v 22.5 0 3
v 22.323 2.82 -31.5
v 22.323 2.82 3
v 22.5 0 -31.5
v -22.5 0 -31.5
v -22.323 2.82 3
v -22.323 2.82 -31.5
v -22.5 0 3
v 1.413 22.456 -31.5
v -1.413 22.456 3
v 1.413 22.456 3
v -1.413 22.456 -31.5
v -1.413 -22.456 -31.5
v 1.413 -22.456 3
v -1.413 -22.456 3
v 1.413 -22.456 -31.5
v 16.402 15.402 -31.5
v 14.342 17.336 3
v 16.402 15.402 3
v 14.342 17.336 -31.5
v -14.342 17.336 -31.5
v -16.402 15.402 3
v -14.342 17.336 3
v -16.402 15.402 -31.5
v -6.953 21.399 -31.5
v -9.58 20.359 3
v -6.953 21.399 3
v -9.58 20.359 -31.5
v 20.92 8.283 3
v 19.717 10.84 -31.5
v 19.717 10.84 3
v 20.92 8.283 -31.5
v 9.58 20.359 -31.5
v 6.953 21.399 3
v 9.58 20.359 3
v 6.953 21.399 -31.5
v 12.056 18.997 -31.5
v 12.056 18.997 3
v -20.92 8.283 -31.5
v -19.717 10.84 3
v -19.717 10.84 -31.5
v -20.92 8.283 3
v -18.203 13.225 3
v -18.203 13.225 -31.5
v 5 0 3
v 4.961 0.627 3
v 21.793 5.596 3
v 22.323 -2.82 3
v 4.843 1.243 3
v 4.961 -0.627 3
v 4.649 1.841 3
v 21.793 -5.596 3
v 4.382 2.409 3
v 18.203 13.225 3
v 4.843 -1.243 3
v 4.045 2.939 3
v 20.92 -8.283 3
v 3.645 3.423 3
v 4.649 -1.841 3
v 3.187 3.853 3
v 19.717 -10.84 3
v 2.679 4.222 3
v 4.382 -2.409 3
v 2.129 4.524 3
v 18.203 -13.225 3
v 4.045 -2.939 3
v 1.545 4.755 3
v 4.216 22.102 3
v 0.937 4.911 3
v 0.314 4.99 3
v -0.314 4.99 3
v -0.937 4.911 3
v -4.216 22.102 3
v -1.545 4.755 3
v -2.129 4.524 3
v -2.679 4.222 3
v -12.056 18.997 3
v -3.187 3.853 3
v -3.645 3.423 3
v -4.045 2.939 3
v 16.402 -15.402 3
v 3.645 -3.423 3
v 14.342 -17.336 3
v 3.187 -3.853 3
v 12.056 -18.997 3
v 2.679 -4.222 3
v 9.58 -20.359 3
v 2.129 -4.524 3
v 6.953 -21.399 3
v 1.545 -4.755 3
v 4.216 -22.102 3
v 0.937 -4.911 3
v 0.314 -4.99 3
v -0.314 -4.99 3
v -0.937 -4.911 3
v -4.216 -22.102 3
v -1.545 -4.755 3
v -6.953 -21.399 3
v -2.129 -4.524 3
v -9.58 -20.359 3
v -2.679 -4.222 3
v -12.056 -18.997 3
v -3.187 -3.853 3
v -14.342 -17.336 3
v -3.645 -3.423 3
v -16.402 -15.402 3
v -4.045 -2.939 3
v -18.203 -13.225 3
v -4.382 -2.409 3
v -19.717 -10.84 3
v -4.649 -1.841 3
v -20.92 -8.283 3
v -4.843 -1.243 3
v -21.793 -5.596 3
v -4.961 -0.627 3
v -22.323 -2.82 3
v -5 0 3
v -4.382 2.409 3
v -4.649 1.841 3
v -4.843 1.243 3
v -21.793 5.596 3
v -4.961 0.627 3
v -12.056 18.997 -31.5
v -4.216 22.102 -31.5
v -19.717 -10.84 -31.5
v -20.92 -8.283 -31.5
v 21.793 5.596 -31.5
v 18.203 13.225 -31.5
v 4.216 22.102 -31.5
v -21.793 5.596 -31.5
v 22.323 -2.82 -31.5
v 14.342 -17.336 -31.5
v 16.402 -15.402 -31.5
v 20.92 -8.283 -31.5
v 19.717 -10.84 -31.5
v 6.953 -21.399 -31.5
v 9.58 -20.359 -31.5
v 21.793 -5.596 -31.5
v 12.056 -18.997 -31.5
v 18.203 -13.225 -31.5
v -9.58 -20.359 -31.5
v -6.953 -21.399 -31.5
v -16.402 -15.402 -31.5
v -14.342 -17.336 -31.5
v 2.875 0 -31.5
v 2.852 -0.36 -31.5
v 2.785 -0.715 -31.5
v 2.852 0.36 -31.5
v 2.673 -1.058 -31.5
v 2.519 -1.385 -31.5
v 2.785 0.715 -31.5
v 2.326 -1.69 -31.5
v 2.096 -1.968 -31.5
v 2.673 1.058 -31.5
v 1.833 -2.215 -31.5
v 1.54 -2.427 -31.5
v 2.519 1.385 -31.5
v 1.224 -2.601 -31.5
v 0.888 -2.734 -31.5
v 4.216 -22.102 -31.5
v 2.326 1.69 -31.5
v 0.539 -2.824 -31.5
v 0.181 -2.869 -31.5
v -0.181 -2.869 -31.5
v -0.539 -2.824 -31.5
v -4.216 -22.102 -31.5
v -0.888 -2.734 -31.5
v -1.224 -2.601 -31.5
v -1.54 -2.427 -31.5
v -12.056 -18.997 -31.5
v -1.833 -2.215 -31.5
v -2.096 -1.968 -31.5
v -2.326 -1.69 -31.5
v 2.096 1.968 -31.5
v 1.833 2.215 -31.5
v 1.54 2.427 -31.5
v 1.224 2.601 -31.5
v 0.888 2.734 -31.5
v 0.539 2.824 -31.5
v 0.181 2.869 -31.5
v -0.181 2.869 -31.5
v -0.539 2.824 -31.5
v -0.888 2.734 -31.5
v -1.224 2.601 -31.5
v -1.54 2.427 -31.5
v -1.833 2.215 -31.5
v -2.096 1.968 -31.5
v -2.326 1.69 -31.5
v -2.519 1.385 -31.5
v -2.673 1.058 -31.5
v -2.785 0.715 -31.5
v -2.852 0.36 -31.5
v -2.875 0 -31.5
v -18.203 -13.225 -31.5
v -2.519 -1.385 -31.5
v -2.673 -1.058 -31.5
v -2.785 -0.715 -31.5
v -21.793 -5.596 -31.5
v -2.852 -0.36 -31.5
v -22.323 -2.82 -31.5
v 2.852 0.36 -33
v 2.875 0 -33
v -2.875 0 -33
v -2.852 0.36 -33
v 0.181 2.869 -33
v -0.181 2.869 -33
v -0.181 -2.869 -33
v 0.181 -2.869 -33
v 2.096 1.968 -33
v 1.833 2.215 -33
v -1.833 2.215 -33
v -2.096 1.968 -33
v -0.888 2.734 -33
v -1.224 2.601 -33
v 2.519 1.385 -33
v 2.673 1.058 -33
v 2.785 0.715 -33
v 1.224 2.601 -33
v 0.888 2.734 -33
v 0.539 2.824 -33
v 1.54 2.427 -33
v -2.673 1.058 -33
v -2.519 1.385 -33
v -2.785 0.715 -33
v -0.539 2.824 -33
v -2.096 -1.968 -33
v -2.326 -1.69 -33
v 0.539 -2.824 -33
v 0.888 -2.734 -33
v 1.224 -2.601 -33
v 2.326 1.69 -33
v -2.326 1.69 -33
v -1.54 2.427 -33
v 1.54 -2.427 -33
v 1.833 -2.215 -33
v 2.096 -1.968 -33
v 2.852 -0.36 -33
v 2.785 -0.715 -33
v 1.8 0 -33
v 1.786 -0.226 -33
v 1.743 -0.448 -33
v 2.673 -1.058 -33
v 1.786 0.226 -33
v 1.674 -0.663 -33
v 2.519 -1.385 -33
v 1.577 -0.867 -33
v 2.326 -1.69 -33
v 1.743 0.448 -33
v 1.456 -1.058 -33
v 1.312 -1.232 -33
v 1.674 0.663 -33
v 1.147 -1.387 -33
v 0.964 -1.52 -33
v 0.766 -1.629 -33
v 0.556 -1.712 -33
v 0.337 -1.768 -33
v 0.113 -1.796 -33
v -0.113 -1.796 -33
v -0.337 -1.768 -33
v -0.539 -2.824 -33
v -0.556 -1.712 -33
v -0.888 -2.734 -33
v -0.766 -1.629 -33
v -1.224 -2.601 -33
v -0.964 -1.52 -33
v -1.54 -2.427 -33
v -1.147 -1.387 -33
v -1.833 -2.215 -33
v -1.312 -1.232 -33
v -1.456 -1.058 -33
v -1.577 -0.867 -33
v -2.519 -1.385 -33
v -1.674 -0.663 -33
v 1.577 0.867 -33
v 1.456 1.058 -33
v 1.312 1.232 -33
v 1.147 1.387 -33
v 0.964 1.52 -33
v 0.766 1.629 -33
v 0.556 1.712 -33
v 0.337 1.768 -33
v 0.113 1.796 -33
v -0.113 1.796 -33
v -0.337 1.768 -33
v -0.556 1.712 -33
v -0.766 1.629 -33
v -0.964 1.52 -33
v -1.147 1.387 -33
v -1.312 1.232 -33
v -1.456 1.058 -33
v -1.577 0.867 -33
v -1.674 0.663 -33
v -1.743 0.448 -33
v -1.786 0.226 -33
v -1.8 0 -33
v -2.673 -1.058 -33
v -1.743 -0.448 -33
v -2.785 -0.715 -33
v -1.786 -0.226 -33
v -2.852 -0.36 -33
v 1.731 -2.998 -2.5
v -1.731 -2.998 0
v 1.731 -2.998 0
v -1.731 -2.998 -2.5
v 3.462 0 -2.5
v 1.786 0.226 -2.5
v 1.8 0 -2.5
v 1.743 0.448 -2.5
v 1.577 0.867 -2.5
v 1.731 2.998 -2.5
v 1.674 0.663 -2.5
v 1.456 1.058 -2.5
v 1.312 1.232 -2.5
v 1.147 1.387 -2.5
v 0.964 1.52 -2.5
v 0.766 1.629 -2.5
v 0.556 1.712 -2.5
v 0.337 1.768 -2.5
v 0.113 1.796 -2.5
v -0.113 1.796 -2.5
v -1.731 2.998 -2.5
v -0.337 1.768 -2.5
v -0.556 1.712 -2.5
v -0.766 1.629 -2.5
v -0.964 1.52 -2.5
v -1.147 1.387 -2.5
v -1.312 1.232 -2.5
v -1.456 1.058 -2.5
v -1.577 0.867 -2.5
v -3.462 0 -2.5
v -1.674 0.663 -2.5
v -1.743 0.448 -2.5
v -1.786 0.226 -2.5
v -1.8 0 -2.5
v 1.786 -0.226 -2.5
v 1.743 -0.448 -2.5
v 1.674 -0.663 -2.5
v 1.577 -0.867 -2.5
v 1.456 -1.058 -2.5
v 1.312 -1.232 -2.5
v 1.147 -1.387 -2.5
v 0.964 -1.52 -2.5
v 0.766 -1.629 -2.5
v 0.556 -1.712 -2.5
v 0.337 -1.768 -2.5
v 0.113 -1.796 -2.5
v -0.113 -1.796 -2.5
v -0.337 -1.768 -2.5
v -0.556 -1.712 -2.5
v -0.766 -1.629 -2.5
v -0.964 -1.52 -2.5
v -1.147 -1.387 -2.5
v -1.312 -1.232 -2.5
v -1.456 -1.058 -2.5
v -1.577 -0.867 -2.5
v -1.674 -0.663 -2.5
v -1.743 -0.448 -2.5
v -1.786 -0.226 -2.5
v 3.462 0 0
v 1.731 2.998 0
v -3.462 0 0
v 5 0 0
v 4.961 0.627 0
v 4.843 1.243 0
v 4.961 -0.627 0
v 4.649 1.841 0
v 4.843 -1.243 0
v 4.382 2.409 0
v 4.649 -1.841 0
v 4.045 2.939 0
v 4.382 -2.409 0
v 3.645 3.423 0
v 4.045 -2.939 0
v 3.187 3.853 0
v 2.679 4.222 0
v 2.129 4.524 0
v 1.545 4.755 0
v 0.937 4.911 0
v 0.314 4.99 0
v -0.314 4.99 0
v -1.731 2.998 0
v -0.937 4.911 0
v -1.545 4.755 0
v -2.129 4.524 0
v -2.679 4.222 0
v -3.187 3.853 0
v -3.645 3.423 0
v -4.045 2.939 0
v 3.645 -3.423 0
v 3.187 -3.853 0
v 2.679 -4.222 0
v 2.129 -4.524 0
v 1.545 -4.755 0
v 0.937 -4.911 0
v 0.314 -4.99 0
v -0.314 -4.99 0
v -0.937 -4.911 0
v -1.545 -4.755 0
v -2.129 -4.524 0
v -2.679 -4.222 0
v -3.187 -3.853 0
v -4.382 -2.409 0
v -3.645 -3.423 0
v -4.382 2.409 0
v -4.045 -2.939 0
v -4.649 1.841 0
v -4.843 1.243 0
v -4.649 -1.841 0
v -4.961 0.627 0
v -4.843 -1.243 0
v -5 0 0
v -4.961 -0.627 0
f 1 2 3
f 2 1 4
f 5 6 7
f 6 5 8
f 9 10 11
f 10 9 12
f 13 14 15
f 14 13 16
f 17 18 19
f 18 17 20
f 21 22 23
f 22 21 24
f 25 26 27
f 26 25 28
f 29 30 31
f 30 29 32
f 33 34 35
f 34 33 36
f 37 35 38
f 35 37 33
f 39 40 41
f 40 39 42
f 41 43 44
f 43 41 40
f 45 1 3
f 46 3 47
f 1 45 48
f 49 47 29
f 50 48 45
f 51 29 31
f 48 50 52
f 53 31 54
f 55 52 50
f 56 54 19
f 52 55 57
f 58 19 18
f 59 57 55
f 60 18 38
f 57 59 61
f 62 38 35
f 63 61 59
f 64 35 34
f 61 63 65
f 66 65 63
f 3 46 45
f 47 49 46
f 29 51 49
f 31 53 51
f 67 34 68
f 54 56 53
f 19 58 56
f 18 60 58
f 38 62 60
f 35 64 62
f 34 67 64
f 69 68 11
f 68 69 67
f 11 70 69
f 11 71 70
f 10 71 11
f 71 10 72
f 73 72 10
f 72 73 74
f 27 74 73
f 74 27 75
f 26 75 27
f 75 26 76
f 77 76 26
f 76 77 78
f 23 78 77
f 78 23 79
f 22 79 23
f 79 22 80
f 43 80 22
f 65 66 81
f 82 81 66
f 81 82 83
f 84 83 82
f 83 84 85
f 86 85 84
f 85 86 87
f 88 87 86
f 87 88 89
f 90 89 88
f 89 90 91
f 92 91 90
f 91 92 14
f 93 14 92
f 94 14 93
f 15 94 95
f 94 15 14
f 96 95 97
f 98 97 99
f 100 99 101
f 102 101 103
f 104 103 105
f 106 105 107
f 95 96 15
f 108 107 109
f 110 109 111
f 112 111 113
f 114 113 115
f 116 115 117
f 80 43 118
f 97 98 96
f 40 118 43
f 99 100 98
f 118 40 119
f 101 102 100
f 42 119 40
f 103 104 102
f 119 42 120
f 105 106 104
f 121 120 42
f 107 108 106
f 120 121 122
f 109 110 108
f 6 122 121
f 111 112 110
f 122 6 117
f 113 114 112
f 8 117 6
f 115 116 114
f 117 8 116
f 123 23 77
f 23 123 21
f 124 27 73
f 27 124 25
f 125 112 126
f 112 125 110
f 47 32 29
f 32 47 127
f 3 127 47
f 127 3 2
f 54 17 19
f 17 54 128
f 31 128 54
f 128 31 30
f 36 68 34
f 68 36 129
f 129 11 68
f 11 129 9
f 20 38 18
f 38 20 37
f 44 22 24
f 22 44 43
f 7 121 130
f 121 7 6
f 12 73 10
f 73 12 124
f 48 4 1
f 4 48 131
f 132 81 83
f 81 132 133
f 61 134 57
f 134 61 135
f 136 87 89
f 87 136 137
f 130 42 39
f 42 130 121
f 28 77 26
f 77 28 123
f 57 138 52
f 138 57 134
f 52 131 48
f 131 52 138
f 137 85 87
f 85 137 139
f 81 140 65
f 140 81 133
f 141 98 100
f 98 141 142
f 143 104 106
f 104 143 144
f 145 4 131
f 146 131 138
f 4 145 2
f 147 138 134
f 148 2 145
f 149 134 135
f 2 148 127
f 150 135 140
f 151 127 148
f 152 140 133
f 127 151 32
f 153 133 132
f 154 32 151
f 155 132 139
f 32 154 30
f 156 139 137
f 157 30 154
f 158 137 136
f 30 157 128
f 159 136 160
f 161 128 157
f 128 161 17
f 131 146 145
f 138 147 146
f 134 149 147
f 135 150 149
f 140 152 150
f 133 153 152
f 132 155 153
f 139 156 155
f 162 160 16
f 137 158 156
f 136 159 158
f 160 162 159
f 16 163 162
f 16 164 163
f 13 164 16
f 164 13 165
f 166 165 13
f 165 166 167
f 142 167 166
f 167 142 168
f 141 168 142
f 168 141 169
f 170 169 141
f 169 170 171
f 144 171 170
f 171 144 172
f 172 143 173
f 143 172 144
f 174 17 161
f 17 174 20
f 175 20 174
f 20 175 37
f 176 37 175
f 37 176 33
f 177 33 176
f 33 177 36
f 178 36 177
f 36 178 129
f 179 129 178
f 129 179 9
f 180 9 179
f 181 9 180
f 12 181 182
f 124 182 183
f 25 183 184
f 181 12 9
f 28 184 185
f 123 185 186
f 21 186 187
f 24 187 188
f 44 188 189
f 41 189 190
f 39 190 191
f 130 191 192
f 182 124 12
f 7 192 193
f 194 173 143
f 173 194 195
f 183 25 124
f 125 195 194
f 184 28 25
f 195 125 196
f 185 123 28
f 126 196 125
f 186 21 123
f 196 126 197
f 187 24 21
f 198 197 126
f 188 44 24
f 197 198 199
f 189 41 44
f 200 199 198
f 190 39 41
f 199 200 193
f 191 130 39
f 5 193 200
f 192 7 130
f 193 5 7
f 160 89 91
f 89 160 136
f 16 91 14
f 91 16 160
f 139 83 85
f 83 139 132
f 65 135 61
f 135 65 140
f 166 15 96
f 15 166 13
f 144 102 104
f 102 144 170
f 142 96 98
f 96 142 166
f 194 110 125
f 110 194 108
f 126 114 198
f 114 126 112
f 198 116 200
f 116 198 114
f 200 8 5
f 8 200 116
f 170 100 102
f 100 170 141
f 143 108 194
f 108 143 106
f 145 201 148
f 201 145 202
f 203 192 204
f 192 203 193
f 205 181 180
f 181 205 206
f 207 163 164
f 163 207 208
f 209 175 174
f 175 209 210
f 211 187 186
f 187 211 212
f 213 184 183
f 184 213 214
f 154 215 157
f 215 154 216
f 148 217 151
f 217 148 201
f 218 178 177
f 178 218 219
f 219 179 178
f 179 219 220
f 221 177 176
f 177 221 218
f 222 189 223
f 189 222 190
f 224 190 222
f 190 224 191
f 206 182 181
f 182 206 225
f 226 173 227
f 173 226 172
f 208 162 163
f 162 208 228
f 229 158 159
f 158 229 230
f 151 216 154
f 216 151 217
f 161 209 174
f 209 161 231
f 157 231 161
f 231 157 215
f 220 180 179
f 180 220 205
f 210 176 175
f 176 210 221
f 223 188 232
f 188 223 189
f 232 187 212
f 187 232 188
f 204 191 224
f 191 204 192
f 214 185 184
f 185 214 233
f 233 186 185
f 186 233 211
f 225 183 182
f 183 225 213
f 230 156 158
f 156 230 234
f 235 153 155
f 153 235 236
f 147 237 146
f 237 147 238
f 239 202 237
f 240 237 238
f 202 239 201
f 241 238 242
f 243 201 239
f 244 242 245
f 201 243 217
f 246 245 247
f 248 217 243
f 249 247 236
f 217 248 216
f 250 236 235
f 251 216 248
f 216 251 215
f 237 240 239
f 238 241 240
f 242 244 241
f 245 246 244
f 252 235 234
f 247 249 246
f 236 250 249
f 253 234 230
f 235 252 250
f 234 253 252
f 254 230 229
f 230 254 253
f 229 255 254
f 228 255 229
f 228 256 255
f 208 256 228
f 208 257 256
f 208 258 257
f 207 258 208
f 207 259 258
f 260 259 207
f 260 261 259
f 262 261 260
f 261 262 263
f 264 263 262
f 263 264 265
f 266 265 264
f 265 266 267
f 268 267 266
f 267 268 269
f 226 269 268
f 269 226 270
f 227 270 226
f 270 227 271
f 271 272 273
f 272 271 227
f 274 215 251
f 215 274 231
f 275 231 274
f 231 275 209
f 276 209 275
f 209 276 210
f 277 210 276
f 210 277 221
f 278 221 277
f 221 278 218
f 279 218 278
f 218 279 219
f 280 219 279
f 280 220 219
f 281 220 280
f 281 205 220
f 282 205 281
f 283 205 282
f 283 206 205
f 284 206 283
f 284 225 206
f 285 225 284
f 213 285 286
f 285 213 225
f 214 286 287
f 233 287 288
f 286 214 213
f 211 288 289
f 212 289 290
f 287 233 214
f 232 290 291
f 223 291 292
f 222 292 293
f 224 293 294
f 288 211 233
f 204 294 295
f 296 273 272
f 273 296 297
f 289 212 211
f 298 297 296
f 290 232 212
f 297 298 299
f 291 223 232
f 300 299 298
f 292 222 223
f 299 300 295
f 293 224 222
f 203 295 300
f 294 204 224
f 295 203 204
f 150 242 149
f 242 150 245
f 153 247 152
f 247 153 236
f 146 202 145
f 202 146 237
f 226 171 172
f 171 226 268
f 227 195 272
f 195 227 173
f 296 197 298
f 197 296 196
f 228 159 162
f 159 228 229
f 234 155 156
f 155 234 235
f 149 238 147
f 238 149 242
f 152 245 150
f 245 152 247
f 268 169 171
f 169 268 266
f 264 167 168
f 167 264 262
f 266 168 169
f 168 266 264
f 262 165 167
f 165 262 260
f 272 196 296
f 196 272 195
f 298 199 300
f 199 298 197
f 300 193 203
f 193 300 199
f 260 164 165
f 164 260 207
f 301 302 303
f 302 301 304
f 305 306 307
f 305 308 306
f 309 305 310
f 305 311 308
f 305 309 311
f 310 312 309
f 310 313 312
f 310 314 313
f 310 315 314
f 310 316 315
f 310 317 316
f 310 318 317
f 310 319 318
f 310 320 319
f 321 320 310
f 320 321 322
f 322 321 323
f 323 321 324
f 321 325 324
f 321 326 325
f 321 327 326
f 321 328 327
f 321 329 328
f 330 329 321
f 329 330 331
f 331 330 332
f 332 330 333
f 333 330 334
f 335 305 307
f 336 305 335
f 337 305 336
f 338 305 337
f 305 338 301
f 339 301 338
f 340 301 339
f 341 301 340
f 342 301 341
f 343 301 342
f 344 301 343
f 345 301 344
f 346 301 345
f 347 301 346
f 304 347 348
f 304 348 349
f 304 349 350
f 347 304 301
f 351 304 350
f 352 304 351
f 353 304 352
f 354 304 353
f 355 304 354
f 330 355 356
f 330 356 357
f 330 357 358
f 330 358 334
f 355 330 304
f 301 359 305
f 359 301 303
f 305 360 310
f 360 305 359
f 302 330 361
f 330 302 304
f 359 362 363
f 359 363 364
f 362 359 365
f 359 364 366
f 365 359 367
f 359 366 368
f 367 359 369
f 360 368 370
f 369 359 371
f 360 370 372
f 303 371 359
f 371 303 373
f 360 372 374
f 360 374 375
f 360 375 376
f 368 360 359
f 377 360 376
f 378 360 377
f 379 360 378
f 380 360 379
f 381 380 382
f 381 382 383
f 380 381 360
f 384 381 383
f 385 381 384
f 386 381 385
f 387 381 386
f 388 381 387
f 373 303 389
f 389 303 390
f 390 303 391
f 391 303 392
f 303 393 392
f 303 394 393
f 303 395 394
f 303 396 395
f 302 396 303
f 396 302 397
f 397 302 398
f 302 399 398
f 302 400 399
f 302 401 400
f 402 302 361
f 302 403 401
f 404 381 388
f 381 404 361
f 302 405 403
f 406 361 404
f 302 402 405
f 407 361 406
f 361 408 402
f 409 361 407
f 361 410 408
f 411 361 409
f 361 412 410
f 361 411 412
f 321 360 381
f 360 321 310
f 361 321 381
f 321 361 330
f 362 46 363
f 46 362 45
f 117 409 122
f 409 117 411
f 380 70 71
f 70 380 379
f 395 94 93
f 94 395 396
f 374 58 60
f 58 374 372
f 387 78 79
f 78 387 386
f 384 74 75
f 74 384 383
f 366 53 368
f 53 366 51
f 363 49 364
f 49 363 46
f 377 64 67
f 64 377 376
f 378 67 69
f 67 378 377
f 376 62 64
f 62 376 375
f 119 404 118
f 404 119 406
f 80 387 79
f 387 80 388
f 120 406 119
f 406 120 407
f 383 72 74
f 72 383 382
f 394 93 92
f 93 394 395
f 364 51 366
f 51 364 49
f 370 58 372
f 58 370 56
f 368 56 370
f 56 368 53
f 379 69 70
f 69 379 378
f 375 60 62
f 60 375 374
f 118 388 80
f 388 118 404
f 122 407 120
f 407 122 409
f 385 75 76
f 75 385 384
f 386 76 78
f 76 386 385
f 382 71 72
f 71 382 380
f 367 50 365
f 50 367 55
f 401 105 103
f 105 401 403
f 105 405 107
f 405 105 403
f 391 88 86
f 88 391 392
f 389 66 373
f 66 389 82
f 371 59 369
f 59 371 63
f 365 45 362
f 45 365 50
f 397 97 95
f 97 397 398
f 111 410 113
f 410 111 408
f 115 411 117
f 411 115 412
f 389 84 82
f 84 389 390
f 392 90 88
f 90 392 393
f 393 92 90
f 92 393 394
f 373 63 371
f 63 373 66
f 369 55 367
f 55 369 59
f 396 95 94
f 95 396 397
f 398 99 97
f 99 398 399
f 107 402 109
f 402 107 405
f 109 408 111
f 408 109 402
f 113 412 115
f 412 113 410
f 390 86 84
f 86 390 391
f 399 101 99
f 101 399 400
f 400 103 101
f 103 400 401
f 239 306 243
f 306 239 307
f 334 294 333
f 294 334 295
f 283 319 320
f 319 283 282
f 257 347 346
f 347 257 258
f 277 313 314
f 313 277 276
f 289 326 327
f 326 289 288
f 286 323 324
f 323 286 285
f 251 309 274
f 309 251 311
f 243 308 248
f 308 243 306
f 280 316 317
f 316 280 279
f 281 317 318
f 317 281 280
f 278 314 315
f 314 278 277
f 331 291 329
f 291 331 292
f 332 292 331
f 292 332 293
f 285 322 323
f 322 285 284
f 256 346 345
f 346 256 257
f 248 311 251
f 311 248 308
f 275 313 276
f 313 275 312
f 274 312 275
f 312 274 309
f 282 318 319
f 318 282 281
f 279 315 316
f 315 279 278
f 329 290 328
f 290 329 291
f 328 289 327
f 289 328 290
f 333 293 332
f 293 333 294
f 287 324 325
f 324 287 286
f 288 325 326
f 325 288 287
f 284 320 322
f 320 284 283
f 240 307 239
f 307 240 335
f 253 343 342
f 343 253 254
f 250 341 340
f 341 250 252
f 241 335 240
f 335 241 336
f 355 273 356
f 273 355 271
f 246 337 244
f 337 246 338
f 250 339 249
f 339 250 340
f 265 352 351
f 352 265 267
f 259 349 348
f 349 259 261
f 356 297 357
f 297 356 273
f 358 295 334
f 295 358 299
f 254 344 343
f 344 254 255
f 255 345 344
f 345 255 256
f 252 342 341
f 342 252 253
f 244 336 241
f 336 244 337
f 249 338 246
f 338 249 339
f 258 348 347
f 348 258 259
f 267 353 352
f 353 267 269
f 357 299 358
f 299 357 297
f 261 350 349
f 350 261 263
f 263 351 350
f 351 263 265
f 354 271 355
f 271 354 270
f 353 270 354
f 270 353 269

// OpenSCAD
$fn = 50;

difference() {
	union() {
		translate(v = [0, 0, -31.5]) {
			cylinder(h = 34.5, r = 22.5);
		}
		#translate(v = [0, 0, -33.0]) {
			cylinder(h = 33, r = 2.875);
		}
	}
	union() {
		translate(v = [0, 0, 0]) {
			rotate(a = [0, 0, 0]) {
				difference() {
					union() {
						translate(v = [0, 0, -2.5]) {
							linear_extrude(height = 2.5) {
								polygon(points = [[3.4619999999999997, 0.0], [1.7310000000000003, 2.9981799479017264], [-1.7309999999999992, 2.9981799479017264], [-3.4619999999999997, 4.2397272186481365e-16], [-1.7310000000000014, -2.998179947901726], [1.7309999999999977, -2.9981799479017277]]);
							}
						}
					}
					union();
				}
			}
		}
		#cylinder(h = 3, r = 5.0);
		#translate(v = [0, 0, -100.0]) {
			cylinder(h = 200, r = 1.8);
		}
	}
}
